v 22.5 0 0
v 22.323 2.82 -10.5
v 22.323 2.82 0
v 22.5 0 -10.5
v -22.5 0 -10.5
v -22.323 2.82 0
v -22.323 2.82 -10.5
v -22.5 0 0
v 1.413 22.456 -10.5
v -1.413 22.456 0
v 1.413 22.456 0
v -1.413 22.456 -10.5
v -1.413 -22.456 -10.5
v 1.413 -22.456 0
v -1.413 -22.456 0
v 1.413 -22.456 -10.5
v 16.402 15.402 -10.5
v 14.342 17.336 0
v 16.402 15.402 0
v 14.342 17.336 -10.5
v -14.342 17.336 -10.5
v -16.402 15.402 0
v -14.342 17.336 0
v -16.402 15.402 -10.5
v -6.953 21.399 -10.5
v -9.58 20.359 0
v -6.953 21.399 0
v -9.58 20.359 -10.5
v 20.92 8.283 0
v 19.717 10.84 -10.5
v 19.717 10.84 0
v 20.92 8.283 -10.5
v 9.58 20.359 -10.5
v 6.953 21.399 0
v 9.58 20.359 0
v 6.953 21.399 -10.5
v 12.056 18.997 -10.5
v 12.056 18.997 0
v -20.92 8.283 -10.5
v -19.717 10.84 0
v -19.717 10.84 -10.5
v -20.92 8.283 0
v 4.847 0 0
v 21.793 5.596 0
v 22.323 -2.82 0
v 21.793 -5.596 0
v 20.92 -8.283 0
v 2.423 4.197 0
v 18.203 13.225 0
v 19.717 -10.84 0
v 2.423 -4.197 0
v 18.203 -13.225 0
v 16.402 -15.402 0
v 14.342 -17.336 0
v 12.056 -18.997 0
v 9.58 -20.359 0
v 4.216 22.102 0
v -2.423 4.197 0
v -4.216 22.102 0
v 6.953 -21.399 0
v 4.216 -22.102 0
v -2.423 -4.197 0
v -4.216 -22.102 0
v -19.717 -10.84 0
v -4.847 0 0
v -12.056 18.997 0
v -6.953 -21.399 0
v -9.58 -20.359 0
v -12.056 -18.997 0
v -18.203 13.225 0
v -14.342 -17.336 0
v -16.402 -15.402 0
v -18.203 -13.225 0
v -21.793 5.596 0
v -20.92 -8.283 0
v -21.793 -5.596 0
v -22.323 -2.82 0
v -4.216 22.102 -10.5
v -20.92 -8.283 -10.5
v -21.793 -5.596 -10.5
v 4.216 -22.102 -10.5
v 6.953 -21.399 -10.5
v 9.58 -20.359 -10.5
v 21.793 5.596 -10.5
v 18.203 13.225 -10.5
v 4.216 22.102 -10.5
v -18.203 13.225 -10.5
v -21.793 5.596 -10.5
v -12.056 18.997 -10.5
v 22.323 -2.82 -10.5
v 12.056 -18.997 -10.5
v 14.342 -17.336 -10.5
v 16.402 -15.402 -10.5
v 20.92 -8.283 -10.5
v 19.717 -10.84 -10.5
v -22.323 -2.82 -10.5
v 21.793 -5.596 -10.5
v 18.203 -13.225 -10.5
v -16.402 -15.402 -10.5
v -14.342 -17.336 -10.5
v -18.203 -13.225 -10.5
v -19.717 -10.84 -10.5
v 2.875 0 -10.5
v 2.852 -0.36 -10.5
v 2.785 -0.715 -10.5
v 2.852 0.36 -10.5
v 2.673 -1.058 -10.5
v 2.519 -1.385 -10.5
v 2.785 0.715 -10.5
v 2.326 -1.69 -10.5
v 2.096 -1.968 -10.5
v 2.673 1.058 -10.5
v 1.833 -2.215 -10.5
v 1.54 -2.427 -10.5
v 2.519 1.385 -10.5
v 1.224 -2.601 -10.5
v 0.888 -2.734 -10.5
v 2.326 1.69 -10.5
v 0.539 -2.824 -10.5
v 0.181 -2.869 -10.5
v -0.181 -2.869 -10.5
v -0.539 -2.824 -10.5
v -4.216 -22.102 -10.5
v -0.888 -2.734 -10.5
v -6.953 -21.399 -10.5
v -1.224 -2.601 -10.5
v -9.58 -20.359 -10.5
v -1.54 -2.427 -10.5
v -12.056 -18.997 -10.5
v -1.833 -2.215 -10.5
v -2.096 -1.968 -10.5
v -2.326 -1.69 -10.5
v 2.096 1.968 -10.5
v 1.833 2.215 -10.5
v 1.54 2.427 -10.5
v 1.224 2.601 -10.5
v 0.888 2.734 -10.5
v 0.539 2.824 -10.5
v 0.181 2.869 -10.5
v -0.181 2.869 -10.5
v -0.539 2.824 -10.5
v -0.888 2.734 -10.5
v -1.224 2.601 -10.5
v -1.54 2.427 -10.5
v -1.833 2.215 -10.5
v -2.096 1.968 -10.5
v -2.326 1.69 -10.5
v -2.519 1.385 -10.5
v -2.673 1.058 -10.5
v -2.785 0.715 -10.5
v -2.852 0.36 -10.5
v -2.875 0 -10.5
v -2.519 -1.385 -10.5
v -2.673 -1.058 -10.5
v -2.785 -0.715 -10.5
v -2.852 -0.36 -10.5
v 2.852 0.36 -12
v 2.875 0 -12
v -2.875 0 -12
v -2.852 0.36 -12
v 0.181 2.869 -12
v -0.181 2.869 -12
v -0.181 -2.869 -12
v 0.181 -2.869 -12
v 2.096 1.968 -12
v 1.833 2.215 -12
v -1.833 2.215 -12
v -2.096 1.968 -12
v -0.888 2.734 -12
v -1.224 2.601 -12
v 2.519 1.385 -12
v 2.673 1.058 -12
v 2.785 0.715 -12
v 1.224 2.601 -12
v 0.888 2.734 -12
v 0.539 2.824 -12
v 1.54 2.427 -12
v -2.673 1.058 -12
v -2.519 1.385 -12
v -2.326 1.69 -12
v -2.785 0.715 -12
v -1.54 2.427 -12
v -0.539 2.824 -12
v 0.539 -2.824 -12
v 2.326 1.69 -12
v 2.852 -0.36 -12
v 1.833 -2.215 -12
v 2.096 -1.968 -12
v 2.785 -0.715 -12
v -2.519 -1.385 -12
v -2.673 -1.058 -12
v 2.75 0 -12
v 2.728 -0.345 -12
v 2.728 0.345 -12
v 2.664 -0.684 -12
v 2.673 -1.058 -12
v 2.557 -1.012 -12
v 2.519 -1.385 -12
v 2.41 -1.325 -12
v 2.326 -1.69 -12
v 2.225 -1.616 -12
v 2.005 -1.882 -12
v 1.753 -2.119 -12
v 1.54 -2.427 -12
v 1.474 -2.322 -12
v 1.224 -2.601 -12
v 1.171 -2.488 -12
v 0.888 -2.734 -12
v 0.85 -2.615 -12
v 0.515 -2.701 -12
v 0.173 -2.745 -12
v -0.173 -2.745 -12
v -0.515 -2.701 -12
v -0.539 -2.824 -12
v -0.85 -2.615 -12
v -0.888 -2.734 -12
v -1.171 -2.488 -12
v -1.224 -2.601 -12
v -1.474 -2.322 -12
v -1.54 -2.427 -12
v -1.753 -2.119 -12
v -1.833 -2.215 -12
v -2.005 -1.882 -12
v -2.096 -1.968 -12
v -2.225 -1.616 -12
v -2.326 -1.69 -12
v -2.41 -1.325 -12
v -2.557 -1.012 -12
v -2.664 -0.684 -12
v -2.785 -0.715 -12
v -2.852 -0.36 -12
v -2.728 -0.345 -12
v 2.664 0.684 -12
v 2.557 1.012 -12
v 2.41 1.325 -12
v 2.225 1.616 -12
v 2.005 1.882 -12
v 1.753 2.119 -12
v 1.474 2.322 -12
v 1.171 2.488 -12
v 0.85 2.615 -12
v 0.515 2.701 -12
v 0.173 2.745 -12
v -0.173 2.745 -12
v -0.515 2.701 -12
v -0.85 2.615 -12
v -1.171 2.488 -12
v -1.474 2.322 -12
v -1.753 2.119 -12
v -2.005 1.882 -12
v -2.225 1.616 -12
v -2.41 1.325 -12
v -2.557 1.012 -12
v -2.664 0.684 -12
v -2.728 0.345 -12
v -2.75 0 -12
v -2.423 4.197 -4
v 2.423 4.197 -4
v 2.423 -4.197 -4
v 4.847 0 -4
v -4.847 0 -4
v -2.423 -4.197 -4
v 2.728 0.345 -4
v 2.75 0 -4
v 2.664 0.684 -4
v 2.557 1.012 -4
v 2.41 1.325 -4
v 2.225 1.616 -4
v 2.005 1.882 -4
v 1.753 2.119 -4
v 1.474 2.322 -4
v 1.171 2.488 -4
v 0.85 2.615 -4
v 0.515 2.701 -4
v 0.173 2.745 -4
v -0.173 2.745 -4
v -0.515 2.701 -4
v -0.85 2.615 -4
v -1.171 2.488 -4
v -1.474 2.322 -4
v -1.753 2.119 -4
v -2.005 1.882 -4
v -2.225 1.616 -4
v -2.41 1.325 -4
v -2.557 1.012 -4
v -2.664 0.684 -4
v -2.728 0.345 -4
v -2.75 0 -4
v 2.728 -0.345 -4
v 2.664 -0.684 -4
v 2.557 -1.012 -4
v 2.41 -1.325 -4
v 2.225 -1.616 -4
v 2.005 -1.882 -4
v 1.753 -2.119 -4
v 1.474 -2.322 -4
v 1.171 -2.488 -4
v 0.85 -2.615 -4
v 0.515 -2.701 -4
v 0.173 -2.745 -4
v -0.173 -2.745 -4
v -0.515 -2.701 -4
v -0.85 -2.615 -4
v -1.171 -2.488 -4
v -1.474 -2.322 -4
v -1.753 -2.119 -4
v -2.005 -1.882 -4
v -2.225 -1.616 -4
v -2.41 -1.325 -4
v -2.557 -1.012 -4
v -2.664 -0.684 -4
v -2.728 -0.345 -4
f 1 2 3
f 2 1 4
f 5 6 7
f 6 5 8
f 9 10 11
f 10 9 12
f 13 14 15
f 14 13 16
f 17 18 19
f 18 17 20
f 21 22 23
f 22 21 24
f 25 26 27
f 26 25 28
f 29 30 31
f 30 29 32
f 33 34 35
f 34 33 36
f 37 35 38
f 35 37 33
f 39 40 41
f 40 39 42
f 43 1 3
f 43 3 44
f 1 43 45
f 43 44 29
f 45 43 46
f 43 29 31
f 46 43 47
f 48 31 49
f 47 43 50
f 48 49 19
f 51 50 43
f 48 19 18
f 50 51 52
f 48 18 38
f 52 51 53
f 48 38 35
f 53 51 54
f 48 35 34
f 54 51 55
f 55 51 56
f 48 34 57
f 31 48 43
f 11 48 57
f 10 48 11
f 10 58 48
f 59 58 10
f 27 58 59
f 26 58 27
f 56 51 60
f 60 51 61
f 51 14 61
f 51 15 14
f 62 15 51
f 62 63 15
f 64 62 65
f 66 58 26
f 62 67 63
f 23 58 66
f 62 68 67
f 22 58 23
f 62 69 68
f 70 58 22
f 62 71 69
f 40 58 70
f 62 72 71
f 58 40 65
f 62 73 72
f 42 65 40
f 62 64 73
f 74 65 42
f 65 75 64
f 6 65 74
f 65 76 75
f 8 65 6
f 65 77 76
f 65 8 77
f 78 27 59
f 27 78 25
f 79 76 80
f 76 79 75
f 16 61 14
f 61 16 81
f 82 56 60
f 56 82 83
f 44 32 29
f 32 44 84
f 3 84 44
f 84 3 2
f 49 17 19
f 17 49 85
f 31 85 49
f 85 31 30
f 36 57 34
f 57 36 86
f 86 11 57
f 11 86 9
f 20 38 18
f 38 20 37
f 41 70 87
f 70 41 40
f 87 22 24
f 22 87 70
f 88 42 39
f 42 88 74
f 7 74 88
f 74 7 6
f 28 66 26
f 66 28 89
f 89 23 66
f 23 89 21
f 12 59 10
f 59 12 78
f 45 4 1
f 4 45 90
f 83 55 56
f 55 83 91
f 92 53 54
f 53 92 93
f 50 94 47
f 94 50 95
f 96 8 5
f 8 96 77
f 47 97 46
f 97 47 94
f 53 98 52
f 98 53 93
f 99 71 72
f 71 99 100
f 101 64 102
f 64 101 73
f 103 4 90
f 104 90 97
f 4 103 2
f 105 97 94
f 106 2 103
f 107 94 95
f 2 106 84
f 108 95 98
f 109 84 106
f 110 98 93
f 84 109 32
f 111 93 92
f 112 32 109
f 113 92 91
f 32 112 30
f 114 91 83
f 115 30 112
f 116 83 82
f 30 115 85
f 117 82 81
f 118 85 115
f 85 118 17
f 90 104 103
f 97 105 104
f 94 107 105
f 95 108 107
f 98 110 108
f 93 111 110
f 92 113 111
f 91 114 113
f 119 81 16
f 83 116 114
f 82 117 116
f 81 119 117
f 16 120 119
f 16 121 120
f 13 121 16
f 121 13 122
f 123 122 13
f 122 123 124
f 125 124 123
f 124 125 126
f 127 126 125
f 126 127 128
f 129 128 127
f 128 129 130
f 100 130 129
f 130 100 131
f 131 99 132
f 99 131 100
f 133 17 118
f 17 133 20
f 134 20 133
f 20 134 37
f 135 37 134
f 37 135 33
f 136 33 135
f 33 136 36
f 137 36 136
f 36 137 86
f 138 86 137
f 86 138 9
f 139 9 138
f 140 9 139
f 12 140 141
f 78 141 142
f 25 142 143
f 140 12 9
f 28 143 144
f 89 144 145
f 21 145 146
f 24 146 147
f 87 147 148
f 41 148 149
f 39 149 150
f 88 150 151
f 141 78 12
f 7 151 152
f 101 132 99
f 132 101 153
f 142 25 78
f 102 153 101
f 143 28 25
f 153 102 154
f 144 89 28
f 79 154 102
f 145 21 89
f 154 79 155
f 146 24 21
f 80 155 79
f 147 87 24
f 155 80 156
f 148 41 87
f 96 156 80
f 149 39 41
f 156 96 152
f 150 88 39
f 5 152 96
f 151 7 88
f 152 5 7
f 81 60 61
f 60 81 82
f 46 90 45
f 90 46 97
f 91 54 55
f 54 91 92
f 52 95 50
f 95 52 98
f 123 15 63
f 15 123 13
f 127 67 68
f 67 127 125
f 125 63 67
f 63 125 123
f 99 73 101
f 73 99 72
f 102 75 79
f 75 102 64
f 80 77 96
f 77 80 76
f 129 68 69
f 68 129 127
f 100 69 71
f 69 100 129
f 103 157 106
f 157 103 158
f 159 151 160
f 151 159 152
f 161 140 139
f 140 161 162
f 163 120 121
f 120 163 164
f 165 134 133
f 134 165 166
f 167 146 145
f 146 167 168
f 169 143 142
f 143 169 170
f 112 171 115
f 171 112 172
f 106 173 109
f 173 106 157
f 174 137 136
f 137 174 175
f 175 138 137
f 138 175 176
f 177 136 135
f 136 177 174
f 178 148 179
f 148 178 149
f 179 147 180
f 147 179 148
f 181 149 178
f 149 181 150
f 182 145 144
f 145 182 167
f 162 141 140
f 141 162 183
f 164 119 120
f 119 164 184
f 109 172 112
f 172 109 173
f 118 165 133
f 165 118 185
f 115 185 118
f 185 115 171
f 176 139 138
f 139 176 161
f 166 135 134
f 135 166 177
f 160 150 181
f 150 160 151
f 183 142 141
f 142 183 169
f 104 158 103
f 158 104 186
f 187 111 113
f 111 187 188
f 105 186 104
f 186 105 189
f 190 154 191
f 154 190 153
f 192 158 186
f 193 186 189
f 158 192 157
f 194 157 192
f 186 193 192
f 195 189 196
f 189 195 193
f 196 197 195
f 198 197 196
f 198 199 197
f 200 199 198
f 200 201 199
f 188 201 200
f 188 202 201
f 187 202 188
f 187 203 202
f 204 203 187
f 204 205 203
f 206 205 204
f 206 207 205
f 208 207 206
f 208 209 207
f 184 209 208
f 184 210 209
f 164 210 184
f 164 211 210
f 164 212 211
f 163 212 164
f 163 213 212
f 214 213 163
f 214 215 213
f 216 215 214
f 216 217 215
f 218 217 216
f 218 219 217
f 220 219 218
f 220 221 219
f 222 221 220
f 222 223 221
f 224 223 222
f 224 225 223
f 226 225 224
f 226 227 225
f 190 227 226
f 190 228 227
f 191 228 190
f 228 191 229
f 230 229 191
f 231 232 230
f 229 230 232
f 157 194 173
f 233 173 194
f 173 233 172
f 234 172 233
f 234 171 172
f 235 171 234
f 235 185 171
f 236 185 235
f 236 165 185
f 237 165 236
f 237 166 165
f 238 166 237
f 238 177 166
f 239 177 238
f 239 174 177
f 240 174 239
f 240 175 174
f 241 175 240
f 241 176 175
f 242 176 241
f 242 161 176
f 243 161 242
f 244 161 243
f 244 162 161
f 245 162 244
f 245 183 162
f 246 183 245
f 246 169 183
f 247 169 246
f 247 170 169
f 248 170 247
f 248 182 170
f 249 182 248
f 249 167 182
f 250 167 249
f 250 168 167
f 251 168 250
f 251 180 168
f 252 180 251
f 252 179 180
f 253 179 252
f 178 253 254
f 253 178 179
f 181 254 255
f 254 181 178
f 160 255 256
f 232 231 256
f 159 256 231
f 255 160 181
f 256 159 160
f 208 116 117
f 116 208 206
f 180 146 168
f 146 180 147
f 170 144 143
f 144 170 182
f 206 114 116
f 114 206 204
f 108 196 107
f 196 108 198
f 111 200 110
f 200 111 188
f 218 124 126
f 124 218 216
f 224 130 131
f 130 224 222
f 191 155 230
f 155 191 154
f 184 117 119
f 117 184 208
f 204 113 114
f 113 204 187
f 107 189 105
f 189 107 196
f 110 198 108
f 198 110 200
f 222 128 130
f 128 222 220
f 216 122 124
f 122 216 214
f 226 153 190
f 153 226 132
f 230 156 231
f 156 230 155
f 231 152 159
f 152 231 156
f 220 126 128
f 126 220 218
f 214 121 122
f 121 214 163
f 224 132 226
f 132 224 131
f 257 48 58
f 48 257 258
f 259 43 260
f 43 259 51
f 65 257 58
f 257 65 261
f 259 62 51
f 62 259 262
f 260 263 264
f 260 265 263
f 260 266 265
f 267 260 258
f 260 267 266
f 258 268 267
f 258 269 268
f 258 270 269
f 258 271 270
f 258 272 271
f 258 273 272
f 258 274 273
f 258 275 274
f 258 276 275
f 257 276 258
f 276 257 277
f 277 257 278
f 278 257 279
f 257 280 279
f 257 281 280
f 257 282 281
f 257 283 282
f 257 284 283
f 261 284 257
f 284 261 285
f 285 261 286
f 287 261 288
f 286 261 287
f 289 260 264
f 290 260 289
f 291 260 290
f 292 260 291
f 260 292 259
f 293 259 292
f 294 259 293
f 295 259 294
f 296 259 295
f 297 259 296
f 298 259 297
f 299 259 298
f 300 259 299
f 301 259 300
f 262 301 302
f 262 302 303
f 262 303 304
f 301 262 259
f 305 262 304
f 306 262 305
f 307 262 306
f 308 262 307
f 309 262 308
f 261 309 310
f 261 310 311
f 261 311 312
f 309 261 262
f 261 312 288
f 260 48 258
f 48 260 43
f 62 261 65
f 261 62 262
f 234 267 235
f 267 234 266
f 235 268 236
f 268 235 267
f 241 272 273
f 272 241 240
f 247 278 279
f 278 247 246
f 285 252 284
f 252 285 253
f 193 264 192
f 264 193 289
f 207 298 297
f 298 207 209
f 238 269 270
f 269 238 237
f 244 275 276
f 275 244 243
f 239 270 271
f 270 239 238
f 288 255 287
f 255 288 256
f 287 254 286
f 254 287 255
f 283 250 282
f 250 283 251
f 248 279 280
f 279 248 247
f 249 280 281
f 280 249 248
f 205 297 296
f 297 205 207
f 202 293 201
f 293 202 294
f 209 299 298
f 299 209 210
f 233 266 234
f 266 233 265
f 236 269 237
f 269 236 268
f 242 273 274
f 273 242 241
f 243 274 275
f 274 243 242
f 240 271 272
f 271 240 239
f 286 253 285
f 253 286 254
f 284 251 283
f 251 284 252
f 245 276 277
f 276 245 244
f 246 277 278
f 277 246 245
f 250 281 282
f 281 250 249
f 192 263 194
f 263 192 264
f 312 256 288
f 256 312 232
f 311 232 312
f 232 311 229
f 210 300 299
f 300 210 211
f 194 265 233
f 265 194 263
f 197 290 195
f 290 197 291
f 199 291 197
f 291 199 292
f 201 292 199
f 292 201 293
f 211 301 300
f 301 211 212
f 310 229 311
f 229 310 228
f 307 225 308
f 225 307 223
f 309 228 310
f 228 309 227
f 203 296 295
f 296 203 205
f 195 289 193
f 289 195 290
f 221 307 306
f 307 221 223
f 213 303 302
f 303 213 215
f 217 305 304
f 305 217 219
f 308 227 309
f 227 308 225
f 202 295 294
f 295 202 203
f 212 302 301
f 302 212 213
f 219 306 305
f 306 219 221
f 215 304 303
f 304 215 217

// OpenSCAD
$fn = 50;


difference() {
	union() {
		translate(v = [0, 0, -10.5000000000]) {
			cylinder(h = 10.5000000000, r = 22.5000000000);
		}
		translate(v = [0, 0, -12.0000000000]) {
			cylinder(h = 12, r = 2.8750000000);
		}
	}
	union() {
		translate(v = [0, 0, 0]) {
			rotate(a = [0, 0, 0]) {
				difference() {
					union() {
						translate(v = [0, 0, -4]) {
							linear_extrude(height = 4) {
								polygon(points = [[4.8468000000, 0.0000000000], [2.4234000000, 4.1974519271], [-2.4234000000, 4.1974519271], [-4.8468000000, 0.0000000000], [-2.4234000000, -4.1974519271], [2.4234000000, -4.1974519271]]);
							}
						}
					}
					union();
				}
			}
		}
		#translate(v = [0, 0, -100.0000000000]) {
			cylinder(h = 200, r = 2.7500000000);
		}
	}
}
